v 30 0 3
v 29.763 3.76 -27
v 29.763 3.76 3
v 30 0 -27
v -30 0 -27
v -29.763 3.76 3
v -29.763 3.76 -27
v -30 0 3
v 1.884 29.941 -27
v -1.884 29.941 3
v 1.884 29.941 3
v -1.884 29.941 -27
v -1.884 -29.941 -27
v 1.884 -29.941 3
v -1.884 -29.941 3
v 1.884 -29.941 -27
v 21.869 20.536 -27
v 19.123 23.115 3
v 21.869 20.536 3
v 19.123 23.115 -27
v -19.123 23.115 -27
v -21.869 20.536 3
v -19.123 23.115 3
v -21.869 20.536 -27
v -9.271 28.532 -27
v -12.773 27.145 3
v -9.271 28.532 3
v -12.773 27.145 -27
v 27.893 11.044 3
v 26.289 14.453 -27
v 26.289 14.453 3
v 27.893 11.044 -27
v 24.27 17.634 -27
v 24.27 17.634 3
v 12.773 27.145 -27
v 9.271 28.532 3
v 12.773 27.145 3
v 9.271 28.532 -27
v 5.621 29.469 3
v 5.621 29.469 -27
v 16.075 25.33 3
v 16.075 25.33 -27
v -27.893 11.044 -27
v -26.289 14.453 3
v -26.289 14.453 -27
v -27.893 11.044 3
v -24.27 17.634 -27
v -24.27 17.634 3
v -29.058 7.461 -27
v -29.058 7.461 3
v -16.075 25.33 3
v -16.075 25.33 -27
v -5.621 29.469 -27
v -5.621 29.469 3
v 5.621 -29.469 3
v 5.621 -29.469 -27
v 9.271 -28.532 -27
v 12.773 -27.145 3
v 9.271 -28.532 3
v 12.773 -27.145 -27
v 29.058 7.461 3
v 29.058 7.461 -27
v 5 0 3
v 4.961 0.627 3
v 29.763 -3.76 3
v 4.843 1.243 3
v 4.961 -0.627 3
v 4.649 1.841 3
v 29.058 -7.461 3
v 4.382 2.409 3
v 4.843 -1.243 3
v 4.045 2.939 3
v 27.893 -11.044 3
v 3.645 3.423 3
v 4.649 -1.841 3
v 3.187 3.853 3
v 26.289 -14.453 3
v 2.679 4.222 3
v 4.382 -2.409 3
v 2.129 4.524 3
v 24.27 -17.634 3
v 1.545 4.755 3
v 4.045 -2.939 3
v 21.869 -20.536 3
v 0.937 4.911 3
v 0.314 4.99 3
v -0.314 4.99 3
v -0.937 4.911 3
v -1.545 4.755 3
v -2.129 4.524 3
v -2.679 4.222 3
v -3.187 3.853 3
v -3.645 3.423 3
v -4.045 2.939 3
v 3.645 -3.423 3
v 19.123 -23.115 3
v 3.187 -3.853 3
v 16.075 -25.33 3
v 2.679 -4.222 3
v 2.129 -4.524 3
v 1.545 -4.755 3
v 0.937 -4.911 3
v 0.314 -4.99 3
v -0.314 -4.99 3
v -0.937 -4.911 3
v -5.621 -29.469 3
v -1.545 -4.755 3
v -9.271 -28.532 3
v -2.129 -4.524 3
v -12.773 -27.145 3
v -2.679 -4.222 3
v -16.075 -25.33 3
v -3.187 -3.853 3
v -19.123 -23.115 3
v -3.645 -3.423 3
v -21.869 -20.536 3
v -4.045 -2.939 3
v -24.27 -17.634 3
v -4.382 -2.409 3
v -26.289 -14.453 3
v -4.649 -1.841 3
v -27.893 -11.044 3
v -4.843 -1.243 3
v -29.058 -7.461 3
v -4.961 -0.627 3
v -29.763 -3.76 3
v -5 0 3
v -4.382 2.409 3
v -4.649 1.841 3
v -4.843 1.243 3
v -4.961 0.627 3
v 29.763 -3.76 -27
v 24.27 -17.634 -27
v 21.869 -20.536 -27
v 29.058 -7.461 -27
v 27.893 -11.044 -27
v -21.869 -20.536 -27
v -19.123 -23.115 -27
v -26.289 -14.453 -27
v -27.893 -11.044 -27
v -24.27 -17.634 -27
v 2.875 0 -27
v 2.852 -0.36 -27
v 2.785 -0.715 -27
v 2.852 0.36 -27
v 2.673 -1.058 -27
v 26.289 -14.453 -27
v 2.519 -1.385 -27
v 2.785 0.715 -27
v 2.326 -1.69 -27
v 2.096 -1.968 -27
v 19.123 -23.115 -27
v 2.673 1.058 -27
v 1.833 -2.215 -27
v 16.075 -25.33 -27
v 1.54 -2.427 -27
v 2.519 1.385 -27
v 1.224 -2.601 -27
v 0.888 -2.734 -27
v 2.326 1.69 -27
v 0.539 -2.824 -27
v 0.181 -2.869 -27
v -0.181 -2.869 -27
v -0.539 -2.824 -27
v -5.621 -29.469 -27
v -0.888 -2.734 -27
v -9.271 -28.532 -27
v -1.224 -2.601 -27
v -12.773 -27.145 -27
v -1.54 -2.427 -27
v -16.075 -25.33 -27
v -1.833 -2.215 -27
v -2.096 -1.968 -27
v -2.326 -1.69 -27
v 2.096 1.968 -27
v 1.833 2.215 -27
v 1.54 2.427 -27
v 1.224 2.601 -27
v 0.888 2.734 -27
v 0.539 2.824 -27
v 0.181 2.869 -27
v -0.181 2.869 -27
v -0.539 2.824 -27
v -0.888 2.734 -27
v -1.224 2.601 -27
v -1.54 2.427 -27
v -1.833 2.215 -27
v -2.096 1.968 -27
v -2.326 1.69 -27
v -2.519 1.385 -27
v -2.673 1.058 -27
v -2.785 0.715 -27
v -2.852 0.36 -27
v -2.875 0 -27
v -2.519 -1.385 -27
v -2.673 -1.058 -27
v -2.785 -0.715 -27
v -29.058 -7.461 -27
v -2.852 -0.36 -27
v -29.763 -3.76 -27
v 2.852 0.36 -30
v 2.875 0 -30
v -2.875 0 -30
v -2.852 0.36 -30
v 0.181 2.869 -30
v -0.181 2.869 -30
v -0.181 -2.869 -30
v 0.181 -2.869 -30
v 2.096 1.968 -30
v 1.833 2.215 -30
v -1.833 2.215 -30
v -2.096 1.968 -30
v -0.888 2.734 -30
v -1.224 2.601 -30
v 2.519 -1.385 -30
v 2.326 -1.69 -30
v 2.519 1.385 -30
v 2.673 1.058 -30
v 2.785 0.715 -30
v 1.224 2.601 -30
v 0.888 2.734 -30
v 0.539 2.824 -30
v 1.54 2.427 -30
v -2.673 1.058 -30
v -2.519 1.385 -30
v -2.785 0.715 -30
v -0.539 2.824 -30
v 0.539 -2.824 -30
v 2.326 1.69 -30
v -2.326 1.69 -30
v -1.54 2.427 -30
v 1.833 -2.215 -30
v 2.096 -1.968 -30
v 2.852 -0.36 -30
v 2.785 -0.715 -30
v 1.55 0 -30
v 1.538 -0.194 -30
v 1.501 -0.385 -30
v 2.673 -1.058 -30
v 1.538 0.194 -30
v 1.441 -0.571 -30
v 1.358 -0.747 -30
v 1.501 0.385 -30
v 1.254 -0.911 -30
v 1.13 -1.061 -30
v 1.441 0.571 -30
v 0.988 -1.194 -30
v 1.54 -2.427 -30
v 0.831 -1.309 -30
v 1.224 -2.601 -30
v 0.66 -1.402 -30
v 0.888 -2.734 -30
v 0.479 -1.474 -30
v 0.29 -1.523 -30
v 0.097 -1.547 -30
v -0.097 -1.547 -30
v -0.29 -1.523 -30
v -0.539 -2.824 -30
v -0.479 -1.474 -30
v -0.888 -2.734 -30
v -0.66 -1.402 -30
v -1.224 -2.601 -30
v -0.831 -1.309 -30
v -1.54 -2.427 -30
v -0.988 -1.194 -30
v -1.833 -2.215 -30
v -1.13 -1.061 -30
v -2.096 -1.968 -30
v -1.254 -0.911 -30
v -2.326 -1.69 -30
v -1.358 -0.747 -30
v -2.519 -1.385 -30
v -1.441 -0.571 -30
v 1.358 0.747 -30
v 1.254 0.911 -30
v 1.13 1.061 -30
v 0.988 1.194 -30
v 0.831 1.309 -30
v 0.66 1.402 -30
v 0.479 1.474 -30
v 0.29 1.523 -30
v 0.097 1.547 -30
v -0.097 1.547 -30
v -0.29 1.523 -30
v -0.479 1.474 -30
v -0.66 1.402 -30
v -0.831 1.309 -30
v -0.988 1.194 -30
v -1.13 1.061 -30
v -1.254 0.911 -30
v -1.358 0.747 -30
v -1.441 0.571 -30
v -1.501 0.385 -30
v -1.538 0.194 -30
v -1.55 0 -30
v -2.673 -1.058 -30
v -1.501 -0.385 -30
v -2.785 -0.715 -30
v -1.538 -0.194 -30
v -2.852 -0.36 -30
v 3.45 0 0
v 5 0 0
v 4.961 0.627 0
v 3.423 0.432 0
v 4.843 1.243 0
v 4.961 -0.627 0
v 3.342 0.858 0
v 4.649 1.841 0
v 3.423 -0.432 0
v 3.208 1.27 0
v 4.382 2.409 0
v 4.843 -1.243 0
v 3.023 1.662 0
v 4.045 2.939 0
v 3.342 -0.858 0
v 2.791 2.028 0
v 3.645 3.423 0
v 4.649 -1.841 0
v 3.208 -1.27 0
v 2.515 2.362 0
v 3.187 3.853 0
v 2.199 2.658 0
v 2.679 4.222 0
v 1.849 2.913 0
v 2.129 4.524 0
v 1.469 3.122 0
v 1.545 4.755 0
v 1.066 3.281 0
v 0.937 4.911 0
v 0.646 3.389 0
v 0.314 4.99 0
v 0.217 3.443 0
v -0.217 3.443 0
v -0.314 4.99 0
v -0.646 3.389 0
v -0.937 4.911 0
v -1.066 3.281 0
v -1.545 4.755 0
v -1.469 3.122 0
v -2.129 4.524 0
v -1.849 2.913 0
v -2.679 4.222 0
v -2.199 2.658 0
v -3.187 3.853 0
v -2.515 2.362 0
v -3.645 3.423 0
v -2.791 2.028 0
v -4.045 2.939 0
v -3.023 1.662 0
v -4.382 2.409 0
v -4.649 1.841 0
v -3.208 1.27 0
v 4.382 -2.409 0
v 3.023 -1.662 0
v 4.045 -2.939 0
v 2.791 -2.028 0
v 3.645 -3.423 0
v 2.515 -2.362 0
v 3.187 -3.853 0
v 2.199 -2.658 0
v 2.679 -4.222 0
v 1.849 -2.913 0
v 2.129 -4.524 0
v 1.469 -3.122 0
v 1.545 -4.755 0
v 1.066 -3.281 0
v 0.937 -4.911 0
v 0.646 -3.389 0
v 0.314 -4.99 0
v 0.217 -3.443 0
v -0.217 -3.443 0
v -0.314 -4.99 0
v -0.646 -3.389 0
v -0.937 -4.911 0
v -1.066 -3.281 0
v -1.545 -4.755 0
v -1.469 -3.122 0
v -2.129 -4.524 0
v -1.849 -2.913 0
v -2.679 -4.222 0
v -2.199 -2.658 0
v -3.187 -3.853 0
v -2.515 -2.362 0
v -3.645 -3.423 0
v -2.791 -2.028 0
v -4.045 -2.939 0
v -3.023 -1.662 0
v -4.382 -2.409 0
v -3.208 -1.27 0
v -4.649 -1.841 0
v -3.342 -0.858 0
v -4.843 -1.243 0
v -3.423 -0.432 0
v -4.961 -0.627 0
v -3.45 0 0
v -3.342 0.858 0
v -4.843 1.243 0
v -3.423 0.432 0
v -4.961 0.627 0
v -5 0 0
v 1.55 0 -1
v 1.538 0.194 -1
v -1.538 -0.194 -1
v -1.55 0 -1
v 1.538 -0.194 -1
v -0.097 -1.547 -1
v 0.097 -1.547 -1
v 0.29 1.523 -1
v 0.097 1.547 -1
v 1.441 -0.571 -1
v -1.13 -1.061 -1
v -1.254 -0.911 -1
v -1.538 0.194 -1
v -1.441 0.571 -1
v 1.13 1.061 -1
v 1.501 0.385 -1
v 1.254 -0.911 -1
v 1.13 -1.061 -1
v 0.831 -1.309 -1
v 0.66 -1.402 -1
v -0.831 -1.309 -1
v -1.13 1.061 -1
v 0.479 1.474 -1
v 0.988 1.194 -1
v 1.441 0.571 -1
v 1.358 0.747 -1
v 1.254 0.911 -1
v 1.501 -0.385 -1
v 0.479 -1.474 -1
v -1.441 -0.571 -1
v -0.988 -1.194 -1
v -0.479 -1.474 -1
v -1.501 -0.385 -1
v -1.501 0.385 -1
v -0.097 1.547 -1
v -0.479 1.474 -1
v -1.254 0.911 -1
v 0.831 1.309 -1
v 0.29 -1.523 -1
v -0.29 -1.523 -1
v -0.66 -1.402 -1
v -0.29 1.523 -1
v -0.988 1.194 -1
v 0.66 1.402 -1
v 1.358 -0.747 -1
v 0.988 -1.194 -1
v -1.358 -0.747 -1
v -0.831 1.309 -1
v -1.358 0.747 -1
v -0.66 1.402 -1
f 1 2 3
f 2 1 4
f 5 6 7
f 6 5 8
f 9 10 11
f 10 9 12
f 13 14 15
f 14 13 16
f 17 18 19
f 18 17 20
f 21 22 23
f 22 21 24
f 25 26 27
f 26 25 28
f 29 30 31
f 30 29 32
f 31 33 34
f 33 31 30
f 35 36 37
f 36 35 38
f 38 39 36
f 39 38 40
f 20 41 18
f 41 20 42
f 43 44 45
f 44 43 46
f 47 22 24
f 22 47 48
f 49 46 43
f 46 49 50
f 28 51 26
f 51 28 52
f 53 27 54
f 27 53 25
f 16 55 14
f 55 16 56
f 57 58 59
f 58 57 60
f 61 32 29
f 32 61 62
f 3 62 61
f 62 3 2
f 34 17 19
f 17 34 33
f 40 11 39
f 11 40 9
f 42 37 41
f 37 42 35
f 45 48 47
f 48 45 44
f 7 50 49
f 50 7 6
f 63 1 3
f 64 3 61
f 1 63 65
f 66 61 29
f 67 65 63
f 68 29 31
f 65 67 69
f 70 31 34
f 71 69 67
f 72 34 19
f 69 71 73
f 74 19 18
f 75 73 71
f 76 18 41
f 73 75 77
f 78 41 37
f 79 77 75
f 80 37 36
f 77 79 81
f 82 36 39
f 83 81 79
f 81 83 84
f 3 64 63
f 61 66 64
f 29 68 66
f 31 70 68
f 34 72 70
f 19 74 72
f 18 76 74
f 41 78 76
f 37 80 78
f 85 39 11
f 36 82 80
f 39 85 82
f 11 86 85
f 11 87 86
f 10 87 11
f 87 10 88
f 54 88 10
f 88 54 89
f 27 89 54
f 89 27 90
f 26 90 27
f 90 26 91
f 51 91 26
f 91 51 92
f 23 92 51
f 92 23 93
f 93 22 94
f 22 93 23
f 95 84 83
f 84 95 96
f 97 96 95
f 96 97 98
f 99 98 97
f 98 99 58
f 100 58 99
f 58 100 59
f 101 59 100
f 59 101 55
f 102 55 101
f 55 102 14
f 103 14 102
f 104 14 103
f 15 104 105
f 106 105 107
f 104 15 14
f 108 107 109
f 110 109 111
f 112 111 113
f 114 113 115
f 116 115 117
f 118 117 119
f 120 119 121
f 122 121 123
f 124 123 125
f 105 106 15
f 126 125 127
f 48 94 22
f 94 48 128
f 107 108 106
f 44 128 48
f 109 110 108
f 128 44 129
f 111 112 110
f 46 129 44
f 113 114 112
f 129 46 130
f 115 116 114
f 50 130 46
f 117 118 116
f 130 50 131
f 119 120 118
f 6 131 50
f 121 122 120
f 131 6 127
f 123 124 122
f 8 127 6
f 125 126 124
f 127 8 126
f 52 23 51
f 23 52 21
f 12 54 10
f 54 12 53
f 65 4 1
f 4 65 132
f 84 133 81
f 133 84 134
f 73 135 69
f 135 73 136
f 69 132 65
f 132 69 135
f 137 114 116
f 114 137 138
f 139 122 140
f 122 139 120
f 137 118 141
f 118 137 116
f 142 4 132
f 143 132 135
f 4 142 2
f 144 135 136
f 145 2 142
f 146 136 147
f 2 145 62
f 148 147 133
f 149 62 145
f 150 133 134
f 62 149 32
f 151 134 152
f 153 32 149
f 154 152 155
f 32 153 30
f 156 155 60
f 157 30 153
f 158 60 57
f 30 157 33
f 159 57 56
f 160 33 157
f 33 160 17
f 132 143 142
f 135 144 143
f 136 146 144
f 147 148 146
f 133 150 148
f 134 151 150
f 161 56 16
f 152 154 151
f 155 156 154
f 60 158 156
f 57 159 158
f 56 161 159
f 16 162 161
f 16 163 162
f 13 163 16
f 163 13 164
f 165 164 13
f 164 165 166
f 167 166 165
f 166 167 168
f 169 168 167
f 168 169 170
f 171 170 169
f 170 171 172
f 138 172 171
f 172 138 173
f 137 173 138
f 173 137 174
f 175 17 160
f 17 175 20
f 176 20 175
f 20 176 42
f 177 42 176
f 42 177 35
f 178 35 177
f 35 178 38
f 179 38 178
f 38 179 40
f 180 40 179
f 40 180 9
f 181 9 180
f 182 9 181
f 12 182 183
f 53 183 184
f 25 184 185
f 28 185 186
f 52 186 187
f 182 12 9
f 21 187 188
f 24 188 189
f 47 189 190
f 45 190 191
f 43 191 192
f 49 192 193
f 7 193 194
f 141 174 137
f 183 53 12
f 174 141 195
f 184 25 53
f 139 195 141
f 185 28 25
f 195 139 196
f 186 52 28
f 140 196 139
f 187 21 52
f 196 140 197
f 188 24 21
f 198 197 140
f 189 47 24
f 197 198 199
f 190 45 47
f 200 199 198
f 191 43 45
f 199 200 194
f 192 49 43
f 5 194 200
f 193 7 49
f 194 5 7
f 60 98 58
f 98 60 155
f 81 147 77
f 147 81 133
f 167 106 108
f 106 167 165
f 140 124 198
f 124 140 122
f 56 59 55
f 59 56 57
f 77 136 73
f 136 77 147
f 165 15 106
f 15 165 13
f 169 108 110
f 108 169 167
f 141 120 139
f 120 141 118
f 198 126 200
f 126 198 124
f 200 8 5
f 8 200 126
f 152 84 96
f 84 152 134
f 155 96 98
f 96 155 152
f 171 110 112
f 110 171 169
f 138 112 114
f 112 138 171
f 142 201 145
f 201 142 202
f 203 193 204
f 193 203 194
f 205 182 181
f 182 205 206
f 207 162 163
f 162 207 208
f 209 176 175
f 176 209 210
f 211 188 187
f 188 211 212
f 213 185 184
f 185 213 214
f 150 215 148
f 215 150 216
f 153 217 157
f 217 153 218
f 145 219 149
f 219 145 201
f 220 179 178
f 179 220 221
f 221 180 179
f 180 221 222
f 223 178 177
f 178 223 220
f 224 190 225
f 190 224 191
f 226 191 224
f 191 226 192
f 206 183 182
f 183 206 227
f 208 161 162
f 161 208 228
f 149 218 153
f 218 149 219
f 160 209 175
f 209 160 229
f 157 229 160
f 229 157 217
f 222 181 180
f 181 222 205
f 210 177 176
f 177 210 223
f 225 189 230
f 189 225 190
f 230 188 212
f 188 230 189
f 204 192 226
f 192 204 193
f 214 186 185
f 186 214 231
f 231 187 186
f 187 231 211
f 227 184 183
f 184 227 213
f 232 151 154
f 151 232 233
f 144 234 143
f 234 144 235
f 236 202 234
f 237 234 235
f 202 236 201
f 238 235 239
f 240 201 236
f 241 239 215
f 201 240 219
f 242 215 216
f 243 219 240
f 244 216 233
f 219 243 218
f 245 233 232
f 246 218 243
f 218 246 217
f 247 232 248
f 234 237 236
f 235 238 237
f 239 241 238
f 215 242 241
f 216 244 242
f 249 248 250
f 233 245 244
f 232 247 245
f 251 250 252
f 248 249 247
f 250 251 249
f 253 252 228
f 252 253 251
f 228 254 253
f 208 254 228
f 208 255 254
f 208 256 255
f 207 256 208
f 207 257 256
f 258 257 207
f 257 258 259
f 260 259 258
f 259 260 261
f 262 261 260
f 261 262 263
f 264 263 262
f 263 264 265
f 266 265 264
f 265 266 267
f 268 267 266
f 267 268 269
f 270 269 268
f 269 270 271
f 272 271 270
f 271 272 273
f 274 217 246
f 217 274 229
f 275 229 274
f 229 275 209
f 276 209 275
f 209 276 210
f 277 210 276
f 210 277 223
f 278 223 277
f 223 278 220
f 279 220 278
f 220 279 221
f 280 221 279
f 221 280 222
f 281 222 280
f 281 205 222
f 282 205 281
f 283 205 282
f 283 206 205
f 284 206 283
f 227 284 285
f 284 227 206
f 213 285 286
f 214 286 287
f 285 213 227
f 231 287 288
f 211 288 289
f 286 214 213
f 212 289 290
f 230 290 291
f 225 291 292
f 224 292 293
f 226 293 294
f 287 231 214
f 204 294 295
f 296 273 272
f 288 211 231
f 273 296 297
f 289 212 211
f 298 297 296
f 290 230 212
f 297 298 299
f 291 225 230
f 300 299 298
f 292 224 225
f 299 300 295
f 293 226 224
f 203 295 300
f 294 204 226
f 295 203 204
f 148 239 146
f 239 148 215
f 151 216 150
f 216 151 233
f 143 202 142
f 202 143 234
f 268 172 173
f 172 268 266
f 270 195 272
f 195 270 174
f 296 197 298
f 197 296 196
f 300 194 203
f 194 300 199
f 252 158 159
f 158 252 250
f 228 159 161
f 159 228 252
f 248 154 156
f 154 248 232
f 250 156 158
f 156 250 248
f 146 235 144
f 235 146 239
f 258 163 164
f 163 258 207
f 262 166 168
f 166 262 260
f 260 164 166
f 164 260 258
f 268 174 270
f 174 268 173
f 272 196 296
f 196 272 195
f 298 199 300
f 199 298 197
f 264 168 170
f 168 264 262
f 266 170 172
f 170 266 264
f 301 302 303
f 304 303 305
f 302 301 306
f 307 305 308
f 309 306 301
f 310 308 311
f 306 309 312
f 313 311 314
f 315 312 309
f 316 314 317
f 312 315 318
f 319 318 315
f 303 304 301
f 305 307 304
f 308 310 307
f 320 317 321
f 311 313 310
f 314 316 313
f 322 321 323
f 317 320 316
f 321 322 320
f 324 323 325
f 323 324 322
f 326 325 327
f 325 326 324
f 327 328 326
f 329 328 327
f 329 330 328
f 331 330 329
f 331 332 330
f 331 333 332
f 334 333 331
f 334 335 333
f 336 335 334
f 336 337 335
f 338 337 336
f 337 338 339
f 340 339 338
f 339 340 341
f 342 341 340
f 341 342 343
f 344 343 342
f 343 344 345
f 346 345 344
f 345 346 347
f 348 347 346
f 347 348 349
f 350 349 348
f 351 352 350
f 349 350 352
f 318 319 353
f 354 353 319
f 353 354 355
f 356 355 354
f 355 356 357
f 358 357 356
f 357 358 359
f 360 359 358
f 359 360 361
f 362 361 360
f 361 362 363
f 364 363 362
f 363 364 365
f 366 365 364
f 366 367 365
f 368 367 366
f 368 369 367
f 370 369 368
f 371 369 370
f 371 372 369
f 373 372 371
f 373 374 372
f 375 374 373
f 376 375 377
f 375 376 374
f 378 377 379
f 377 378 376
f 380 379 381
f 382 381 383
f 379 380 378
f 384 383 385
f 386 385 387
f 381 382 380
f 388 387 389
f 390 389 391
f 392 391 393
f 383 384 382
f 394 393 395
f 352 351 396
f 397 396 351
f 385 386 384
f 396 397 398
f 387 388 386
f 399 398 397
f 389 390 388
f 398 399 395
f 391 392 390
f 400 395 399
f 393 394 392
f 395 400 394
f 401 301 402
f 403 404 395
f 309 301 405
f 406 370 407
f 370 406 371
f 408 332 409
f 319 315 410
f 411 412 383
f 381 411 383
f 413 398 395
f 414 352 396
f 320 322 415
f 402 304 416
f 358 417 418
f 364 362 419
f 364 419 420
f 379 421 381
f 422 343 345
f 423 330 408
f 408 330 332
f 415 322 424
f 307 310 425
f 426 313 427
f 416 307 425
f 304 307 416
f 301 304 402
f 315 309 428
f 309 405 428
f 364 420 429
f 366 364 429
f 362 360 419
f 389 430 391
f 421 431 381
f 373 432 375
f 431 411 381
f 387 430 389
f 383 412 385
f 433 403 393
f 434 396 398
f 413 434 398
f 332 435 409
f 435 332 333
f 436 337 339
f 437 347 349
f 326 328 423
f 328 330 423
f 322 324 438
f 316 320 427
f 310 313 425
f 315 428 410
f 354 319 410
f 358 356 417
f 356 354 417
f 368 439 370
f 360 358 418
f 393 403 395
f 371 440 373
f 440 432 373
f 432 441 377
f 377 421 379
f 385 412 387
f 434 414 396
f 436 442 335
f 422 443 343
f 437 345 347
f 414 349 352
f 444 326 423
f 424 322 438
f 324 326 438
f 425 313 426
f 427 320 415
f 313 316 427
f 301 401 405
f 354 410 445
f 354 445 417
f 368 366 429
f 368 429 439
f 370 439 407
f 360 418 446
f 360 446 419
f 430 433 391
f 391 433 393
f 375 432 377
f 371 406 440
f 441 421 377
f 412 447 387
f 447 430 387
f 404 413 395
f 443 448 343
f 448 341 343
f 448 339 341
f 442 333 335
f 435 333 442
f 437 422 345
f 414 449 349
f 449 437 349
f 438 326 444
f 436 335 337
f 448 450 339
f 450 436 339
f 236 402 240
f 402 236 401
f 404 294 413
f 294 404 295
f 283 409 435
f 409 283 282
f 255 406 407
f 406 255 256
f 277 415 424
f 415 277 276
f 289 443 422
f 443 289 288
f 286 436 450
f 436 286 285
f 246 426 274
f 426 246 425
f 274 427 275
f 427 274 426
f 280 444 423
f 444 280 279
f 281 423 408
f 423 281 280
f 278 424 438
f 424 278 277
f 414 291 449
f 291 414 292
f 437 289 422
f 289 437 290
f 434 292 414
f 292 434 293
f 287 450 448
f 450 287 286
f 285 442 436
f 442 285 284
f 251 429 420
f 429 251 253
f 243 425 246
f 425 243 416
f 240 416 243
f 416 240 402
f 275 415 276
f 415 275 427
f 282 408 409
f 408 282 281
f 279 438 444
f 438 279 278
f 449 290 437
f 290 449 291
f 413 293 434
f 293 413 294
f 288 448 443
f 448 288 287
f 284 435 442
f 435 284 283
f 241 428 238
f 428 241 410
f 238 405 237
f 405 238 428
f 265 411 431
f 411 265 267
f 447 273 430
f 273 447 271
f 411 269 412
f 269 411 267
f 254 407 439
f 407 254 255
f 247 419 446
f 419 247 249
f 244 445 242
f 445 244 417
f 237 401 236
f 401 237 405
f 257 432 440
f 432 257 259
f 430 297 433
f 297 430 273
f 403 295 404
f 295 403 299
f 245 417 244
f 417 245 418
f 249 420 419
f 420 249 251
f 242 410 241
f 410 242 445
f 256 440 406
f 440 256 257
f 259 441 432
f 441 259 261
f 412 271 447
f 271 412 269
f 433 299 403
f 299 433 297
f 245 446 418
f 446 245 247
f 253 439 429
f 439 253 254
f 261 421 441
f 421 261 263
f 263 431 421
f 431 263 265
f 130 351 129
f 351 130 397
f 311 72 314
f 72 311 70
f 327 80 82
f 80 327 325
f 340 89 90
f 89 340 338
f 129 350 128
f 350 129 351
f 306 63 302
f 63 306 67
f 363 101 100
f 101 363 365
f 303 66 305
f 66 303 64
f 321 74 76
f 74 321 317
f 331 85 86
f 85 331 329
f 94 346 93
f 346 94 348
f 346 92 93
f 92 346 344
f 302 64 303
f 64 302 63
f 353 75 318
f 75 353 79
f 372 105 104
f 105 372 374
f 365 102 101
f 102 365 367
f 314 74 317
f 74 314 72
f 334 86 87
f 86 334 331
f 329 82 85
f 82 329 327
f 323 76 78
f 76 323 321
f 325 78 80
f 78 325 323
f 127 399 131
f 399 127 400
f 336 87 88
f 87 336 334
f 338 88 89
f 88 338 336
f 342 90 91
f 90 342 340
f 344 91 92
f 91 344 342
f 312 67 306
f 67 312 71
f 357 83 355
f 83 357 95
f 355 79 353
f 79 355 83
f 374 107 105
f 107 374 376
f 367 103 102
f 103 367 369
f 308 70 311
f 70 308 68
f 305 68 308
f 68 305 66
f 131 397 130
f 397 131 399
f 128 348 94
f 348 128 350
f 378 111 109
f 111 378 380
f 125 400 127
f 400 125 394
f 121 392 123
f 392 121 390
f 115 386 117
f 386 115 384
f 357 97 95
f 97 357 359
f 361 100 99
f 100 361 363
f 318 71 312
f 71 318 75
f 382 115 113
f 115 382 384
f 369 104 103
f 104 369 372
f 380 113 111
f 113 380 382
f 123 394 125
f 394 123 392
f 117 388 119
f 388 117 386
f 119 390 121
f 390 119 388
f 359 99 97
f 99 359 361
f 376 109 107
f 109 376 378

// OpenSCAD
$fn = 50;

difference() {
	union() {
		translate(v = [0, 0, -27.0]) {
			cylinder(h = 30, r = 30.0);
		}
		#translate(v = [0, 0, -30.0]) {
			cylinder(h = 30, r = 2.875);
		}
	}
	union() {
		translate(v = [0, 0, 0]) {
			rotate(a = [0, 0, 0]) {
				difference() {
					union() {
						translate(v = [0, 0, -30.0]) {
							cylinder(h = 30, r = 1.25);
						}
						translate(v = [0, 0, -1.0]) {
							cylinder(h = 1.0, r1 = 1.55, r2 = 3.45);
						}
						translate(v = [0, 0, -30.0]) {
							cylinder(h = 30, r = 1.55);
						}
						translate(v = [0, 0, -30.0]) {
							cylinder(h = 30, r = 1.25);
						}
					}
					union();
				}
			}
		}
		#cylinder(h = 3, r = 5.0);
	}
}
